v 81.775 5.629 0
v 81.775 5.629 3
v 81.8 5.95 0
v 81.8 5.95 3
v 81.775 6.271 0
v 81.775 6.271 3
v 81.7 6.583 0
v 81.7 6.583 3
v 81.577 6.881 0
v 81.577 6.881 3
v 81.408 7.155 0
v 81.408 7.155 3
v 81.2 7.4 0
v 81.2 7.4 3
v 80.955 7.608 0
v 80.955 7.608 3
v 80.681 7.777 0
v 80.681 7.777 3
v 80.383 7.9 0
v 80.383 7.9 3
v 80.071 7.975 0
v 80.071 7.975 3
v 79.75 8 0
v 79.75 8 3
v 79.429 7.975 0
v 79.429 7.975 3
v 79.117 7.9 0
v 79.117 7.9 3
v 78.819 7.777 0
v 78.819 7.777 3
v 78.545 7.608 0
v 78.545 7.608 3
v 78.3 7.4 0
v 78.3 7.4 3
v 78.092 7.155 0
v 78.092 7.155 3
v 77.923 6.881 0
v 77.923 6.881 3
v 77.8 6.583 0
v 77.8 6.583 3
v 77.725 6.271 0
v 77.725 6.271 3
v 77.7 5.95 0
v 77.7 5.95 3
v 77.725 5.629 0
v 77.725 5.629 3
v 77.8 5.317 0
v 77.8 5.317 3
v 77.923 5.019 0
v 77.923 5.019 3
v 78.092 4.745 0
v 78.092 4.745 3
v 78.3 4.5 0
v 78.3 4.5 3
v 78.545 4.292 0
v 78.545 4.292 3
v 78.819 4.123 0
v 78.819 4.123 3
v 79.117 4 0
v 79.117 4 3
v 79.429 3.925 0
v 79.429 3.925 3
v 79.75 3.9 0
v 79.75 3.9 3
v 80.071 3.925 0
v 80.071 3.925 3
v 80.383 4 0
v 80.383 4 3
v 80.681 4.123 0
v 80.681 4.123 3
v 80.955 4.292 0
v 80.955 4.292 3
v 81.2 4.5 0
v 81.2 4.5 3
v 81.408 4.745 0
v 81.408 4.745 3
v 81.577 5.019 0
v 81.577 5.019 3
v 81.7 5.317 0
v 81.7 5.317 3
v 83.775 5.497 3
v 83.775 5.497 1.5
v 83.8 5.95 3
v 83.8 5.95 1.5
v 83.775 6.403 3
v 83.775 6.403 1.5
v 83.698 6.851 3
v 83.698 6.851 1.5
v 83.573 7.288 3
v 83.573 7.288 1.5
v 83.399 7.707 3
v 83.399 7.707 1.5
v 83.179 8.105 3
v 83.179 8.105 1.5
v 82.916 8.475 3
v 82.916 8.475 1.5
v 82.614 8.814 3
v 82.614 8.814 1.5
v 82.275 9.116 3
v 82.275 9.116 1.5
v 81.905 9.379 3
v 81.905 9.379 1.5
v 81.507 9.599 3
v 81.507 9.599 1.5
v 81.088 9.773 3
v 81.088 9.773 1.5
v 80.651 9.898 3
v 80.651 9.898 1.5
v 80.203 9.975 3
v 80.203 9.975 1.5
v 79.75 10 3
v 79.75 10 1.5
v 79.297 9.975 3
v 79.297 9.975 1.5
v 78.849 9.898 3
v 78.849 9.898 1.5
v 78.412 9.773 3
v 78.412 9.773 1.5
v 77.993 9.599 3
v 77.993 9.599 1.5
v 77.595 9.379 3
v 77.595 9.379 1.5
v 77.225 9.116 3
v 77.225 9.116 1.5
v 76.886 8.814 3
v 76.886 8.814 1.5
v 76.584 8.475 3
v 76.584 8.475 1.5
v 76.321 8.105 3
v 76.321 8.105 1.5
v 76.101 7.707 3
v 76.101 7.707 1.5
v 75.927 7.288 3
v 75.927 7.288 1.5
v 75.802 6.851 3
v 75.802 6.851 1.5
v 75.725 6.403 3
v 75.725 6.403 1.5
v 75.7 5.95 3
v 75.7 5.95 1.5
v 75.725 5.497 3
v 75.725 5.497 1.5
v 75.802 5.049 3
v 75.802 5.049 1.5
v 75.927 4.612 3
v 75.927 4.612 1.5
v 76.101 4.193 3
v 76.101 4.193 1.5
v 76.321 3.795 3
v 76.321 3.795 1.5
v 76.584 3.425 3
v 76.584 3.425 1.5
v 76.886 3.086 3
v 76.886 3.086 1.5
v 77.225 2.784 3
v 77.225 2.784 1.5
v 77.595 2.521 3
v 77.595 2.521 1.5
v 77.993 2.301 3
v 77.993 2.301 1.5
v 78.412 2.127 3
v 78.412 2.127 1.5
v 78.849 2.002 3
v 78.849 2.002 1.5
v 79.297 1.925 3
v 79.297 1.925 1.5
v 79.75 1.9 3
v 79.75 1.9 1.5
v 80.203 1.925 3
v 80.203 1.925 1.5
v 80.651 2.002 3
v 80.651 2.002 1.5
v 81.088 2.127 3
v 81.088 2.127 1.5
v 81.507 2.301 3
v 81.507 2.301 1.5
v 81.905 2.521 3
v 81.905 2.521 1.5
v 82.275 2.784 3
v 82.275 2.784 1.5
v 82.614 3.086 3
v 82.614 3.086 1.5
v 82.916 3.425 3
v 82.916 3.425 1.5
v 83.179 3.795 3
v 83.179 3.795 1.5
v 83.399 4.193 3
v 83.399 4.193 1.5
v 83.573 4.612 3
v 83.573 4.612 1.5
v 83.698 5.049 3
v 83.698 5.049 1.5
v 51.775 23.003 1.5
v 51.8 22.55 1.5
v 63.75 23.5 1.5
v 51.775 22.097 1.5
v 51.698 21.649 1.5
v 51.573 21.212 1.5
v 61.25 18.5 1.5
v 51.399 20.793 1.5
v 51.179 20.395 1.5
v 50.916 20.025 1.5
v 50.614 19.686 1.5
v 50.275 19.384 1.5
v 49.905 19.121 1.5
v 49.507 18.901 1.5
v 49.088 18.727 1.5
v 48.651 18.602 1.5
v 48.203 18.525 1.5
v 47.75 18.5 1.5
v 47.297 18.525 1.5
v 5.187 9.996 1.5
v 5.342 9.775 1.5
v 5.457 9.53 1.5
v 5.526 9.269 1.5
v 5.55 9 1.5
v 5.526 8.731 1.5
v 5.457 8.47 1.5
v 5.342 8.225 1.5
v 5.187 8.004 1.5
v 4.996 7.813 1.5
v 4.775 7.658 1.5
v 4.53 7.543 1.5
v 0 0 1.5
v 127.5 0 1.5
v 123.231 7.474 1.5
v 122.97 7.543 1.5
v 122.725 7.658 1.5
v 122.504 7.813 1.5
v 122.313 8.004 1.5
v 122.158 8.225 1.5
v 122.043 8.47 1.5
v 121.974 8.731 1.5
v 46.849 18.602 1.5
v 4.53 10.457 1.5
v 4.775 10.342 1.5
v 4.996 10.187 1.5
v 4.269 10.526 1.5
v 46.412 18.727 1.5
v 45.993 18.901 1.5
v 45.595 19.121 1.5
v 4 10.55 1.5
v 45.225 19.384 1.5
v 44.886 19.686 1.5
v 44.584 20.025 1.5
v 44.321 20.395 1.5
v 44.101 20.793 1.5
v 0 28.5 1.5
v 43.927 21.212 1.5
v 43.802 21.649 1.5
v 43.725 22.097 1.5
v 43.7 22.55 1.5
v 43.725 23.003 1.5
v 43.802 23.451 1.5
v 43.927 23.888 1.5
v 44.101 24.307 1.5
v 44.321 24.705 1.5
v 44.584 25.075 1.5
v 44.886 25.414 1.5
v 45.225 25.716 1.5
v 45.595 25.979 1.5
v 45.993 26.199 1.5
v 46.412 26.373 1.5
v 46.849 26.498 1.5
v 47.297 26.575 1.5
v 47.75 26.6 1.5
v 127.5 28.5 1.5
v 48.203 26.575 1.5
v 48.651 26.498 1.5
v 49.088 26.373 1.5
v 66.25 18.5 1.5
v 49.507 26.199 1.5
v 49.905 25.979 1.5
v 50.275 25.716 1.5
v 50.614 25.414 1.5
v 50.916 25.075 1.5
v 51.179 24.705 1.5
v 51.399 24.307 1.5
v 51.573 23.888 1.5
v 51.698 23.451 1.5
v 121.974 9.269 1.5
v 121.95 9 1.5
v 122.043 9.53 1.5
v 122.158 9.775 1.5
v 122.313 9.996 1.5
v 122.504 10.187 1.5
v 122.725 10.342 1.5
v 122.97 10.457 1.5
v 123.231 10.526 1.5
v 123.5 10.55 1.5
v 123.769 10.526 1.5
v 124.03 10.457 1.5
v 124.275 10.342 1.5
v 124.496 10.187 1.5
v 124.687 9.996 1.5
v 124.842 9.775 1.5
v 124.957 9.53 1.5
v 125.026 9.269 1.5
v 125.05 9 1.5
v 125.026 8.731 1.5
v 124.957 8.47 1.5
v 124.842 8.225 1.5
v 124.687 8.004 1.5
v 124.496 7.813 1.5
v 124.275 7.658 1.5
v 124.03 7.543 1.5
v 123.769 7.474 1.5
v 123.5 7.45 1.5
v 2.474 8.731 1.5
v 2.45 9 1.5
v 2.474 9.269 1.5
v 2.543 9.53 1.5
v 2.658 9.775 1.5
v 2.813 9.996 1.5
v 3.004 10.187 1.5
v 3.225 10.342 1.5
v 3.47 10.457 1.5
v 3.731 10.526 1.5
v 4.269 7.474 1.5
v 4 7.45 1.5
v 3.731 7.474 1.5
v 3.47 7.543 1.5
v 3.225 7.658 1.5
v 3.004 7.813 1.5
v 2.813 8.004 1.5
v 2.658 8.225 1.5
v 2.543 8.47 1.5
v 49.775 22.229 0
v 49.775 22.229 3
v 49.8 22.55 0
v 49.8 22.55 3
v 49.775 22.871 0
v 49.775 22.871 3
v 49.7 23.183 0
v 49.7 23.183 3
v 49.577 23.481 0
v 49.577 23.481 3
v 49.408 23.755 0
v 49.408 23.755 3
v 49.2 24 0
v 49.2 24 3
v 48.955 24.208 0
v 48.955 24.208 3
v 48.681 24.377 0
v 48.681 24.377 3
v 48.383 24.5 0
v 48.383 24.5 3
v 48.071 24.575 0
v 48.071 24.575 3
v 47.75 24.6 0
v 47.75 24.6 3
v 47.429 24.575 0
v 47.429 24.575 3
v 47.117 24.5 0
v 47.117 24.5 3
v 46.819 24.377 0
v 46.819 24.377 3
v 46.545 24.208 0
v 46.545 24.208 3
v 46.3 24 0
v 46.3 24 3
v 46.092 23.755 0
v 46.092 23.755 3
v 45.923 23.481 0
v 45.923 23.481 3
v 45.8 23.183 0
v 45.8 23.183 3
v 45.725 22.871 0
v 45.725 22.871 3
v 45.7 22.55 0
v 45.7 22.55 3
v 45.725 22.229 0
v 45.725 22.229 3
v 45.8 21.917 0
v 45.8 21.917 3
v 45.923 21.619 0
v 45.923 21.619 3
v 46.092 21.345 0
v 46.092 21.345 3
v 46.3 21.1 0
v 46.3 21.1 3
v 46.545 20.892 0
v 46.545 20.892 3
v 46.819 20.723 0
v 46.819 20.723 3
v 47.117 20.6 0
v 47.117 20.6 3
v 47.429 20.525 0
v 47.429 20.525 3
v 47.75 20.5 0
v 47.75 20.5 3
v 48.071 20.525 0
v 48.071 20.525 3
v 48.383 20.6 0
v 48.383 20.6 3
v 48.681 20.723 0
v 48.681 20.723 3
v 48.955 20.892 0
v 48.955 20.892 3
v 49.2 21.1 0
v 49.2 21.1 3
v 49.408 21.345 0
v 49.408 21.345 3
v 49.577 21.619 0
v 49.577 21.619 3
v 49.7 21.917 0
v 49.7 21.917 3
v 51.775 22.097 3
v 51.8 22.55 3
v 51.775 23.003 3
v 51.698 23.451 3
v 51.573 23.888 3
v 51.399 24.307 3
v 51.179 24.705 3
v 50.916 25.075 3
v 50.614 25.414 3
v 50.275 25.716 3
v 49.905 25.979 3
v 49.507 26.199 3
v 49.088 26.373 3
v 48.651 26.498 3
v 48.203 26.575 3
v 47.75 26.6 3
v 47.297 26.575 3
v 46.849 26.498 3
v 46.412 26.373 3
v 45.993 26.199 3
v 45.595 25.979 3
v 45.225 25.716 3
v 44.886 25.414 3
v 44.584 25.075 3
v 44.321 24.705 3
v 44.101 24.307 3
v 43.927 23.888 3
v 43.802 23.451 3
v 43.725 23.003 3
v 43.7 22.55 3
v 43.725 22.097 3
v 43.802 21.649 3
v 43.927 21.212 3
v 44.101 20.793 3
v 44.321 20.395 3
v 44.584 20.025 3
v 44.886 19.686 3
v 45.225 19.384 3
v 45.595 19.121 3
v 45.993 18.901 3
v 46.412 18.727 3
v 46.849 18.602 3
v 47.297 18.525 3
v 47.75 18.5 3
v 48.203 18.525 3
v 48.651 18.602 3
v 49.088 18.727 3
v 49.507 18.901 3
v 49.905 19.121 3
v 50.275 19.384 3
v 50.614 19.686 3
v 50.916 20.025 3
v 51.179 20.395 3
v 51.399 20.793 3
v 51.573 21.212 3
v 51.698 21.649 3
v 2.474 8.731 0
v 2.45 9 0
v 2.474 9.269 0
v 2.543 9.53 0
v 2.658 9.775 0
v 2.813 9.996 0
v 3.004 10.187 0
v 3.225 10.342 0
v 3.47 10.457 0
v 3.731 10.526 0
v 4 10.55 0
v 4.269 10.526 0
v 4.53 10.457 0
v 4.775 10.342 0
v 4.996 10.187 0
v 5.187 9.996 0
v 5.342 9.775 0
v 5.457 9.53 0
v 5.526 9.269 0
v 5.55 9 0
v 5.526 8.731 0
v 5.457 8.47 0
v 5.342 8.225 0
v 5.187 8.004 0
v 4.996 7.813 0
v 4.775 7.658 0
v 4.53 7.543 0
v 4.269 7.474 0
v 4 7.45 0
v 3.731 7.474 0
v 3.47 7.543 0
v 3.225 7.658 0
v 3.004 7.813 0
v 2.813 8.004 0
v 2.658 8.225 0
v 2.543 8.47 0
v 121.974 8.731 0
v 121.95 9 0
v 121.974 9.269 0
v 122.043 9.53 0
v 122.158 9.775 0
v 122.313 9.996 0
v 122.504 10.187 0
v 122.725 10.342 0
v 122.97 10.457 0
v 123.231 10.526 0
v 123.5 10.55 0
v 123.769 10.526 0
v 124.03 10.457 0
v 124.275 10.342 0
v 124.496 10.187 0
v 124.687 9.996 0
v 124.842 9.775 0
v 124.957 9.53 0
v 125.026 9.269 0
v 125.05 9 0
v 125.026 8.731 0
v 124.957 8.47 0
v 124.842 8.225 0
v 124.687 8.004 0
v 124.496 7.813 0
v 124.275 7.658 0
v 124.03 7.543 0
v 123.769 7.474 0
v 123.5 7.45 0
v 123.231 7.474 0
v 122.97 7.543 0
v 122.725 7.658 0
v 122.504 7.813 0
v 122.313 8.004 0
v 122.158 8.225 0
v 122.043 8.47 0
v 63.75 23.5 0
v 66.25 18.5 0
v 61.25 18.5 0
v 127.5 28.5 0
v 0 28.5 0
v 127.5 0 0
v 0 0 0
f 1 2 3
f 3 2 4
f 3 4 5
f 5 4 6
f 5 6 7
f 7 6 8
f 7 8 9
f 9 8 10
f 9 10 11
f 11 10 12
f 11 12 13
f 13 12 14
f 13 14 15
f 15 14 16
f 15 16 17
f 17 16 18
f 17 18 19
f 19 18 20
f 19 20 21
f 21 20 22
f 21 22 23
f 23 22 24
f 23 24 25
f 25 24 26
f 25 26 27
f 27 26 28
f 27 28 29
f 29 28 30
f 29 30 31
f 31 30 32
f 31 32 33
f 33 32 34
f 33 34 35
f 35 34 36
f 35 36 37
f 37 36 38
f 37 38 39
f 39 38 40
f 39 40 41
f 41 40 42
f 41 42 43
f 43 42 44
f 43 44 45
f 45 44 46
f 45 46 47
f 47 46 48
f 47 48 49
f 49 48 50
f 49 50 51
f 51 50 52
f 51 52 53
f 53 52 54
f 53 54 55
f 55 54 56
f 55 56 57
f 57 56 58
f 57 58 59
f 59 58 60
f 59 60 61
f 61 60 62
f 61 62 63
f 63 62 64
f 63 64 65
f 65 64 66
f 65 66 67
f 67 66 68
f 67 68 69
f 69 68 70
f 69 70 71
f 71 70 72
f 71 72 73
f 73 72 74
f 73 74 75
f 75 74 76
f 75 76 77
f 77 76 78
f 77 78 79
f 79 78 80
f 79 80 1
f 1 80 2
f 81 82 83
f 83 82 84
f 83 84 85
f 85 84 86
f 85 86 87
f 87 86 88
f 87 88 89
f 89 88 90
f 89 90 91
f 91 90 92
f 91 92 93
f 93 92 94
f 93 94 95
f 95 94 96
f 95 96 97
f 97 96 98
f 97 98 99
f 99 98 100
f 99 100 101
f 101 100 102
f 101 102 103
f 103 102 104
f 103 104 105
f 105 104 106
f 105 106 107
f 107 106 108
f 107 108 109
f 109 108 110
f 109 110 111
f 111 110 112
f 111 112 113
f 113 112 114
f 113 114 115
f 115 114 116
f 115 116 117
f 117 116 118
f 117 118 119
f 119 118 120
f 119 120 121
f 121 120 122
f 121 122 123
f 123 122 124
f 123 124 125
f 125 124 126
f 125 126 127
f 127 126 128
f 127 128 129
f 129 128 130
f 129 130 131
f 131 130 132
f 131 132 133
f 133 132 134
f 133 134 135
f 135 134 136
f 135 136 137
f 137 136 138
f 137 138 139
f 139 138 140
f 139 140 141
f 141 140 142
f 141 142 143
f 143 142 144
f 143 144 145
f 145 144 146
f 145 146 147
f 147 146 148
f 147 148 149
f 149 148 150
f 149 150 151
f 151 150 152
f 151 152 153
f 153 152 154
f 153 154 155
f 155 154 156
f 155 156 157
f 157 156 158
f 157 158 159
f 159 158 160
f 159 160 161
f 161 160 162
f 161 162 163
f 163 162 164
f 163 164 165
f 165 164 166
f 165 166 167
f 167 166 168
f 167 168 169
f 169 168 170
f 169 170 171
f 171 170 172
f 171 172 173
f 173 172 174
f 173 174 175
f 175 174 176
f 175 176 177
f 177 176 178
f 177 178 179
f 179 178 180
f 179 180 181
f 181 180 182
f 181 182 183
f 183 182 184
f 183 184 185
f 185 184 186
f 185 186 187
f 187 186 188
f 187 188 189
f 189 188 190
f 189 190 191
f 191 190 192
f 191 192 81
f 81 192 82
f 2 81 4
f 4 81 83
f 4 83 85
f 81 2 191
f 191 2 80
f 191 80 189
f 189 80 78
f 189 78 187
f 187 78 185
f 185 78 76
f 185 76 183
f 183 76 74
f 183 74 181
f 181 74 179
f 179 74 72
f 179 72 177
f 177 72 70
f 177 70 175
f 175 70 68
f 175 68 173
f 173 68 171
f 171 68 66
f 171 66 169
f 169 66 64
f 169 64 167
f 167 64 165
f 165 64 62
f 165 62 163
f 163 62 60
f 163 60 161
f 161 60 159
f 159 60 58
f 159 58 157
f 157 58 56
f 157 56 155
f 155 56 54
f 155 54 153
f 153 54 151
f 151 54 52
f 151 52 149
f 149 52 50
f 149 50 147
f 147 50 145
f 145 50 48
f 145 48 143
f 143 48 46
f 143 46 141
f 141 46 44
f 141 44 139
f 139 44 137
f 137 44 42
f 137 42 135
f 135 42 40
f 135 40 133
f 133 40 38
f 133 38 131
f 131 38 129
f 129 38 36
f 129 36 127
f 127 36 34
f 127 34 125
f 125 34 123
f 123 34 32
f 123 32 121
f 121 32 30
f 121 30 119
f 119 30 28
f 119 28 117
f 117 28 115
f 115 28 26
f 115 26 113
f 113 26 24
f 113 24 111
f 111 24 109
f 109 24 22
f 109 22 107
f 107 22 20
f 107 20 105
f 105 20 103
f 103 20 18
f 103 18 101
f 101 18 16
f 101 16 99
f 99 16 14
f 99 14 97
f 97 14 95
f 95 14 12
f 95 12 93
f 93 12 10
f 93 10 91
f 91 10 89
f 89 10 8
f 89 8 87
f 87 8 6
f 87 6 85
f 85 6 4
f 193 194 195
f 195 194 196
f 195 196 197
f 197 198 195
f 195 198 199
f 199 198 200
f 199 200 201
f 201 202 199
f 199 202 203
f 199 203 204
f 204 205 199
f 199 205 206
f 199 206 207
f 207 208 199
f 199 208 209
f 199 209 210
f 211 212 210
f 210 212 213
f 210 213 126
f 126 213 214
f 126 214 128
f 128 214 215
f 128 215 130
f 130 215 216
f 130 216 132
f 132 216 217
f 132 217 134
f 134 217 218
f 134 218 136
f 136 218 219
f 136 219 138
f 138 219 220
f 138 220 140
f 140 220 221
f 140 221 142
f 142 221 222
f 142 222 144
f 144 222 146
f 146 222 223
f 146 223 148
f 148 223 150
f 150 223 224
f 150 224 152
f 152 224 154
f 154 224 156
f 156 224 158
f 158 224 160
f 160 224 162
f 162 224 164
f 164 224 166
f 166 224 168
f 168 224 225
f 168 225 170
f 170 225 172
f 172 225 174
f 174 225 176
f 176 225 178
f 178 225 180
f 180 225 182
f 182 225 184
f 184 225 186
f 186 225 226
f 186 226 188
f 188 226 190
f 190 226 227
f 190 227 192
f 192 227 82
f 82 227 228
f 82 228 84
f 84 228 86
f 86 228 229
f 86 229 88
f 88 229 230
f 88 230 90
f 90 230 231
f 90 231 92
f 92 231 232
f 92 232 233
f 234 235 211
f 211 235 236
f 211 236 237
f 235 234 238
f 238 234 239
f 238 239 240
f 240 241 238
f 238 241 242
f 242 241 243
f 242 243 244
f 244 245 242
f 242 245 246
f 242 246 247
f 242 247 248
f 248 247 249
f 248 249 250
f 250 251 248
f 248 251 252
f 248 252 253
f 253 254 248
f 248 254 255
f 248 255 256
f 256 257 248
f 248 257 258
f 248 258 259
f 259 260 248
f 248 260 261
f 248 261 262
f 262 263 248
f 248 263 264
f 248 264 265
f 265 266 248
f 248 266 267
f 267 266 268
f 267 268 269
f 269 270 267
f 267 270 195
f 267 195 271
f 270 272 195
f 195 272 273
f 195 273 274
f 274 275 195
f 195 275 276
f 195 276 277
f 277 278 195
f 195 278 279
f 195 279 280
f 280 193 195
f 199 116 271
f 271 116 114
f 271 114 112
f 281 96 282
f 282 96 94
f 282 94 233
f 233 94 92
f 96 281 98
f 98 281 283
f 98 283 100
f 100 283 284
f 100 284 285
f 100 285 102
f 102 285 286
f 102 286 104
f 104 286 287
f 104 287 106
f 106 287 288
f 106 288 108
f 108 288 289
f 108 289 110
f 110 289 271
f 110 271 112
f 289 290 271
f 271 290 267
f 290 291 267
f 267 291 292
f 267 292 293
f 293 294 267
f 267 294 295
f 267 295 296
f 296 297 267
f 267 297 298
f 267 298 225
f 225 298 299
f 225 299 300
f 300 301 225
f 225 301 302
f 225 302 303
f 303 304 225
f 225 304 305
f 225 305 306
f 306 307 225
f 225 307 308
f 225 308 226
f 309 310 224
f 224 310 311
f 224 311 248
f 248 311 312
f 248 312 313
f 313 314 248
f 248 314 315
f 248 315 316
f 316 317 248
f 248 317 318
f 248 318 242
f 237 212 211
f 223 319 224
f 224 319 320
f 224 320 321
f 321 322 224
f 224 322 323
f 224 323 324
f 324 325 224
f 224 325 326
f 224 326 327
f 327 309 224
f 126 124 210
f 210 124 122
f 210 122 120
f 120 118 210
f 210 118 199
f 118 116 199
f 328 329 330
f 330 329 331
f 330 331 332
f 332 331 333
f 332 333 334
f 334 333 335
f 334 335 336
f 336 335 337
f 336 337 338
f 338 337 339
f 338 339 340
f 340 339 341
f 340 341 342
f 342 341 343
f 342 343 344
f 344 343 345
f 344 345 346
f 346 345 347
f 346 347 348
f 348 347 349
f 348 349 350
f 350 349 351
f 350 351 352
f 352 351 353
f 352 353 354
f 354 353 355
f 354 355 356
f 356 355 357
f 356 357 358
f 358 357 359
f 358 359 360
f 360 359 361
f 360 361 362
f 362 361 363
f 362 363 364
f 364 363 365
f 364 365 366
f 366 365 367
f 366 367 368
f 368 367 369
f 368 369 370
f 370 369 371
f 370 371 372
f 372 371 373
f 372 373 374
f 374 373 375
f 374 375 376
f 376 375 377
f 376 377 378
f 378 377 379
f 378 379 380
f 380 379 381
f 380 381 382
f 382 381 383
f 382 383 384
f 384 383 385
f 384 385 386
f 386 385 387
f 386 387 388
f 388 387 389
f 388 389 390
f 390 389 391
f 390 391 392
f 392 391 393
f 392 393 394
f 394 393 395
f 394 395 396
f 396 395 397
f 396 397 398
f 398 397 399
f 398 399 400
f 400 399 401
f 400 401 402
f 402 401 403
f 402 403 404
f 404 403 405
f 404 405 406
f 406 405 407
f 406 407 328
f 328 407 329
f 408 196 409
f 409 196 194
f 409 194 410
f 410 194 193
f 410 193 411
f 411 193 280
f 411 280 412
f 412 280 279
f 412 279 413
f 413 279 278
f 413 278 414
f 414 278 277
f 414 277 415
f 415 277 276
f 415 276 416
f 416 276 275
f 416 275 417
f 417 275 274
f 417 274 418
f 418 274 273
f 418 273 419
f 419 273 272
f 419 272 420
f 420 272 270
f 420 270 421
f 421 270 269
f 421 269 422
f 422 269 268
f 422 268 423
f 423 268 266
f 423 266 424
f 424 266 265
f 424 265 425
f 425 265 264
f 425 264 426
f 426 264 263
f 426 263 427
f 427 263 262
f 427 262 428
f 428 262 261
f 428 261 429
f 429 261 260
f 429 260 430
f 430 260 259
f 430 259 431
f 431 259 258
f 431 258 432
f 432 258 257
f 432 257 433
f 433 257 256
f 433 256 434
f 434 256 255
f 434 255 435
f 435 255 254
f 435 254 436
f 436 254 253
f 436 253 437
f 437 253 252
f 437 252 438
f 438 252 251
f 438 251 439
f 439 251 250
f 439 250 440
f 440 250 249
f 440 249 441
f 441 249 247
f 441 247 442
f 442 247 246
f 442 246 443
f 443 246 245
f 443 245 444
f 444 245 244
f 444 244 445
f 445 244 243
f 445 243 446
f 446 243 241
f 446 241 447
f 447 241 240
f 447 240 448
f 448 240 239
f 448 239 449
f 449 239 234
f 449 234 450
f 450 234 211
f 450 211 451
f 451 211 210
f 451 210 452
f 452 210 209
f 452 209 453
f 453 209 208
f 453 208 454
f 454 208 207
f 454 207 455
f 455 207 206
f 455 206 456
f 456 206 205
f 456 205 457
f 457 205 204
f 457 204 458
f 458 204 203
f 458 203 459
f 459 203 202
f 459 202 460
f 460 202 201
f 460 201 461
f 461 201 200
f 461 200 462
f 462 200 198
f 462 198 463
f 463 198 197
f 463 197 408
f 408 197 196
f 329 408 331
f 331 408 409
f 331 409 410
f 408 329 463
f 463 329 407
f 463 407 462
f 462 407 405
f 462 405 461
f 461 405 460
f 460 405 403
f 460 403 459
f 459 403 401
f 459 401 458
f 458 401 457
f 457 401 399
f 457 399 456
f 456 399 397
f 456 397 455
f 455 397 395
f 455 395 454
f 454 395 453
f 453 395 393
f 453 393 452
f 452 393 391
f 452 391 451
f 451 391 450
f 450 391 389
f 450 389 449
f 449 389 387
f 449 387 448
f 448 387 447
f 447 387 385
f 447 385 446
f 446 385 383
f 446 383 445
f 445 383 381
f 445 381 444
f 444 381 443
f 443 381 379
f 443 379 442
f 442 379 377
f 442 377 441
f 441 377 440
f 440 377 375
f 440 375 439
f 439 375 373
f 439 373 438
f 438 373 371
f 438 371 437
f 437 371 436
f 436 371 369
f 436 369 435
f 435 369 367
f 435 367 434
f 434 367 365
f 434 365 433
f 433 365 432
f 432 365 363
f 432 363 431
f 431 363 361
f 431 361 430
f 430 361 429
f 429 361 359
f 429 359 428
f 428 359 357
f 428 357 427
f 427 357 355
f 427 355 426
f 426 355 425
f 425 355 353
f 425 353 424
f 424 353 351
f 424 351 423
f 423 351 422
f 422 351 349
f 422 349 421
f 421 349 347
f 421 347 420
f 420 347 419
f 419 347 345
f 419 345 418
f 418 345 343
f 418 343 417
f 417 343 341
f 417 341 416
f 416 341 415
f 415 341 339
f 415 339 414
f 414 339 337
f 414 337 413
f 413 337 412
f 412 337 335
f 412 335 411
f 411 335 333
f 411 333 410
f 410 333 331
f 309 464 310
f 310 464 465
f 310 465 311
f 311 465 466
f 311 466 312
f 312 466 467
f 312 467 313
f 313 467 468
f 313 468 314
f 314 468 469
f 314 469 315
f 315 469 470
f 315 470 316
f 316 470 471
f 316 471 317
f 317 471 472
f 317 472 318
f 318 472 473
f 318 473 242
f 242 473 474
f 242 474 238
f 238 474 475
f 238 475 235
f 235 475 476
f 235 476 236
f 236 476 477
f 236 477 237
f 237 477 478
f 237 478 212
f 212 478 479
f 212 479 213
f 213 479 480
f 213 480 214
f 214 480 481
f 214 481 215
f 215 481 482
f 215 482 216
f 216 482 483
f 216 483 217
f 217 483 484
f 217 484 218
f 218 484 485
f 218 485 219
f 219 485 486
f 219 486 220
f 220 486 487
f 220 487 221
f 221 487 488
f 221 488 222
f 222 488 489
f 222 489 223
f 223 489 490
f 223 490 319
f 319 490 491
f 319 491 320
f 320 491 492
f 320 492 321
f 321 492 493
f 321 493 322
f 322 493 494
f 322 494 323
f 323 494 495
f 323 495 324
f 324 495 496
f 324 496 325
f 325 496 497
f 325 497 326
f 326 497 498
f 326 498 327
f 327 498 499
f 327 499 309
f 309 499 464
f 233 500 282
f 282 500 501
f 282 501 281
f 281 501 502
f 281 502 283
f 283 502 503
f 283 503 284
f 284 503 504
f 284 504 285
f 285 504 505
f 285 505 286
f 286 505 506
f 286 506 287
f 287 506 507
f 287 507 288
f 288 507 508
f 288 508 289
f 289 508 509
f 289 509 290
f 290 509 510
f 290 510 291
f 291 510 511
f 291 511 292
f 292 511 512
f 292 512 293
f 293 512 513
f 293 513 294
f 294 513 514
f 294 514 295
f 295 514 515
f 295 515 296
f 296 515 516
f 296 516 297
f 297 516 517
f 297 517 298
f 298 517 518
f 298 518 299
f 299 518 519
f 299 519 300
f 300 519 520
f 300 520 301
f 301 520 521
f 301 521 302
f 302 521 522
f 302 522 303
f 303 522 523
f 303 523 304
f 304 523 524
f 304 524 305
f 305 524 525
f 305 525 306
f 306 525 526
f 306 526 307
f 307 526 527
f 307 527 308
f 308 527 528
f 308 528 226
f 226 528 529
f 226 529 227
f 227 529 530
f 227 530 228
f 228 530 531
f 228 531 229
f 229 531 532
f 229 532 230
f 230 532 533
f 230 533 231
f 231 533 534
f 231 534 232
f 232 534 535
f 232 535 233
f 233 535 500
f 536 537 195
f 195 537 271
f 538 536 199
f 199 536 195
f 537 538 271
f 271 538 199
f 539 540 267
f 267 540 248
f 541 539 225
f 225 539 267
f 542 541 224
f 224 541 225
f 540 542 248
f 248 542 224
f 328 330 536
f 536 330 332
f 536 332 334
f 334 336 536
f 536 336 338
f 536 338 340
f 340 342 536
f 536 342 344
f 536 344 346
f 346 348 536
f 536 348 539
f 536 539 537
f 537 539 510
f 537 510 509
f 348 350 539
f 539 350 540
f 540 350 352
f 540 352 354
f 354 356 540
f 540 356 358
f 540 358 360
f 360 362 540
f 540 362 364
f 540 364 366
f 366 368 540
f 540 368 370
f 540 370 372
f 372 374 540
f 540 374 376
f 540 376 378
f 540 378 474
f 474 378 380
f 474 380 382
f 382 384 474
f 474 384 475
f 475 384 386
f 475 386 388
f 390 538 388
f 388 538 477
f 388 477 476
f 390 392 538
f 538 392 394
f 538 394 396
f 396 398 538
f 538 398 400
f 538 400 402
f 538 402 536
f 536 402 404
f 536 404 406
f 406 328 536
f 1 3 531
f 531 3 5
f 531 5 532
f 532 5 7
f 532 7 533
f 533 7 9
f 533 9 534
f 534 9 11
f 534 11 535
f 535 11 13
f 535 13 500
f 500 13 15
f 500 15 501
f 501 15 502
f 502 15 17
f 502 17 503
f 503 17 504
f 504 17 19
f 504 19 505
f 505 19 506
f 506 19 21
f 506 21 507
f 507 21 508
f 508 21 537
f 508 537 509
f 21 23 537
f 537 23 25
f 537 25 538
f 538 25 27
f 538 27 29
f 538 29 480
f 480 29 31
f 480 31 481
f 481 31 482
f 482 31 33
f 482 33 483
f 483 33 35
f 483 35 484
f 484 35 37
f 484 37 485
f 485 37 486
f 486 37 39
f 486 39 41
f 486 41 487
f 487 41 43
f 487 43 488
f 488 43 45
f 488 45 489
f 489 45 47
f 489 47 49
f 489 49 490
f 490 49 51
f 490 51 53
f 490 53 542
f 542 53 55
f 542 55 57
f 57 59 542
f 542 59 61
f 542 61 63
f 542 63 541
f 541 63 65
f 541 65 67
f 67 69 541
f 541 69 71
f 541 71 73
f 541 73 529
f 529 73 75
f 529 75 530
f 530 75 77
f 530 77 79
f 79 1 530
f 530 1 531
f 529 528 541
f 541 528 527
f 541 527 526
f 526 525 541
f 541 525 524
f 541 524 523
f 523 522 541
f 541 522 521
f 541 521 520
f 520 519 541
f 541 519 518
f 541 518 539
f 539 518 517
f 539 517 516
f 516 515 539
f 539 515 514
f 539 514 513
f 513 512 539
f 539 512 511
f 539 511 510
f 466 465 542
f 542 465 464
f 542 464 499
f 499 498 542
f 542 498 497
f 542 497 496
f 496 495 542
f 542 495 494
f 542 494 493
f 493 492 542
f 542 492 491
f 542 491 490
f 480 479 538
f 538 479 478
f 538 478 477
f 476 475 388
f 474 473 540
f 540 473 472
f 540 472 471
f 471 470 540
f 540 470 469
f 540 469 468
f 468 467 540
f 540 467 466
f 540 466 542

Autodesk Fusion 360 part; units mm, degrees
sketch "Sketch1" plane through (0, 0, 0) normal (0, 0, 1) x (1, 0, 0)
  line L0 (0, 0) -> (127.5, 0)
  line L1 (127.5, 0) -> (127.5, 28.5)
  line L2 (127.5, 28.5) -> (0, 28.5)
  line L3 (0, 28.5) -> (0, 0)
  circle A0 centre (4, 9) radius 1.55
  line L4 (63.75, 0) -> (63.75, 28.5) construction
  circle A1 centre (123.5, 9) radius 1.55
  line L5 (66.25, 18.5) -> (61.25, 18.5)
  line L6 (61.25, 18.5) -> (61.25, 23.5)
  line L7 (61.25, 23.5) -> (66.25, 23.5)
  line L8 (66.25, 23.5) -> (66.25, 18.5)
  line L9 (66.25, 18.5) -> (61.25, 23.5) construction
  line L10 (61.25, 18.5) -> (66.25, 23.5) construction
  line L11 (61.25, 18.5) -> (63.75, 23.5)
  line L12 (66.25, 18.5) -> (63.75, 23.5)
  point P0 (63.75, 21)
  dimension "d1" = 127.5
  dimension "d2" = 28.5
  dimension "d3" = 3.1
  dimension "d4" = 9
  dimension "d5" = 4
  dimension "d11" = 5
  dimension "d12" = 5
  dimension "d13" = 5
extrude "Extrude1" add sketch "Sketch1" along normal blind 1.5 contours L0 L1 L2 L3 | L7 L8 L12 | L6 L7 L11
sketch "Sketch2" plane through (0, 0, 1.5) normal (0, 0, 1) x (-1, 0, 0)
  circle A0 centre (-123.5, -9) radius 1.55
  circle A1 centre (-4, -9) radius 1.55
  line L0 (-66.25, -18.5) -> (-61.25, -18.5)
  line L1 (-61.25, -18.5) -> (-63.75, -23.5)
  line L2 (-63.75, -23.5) -> (-66.25, -18.5)
  line L3 (0, -28.5) -> (0, 0)
  line L4 (0, 0) -> (-127.5, 0)
  line L5 (-127.5, 0) -> (-127.5, -28.5)
  line L6 (-127.5, -28.5) -> (0, -28.5)
  line L7 (-63.75, -28.5) -> (-63.75, 0) construction
  line L8 (-87.75, -2.75) -> (-39.75, -2.75)
  line L9 (-39.75, -2.75) -> (-39.75, -25.75)
  line L10 (-39.75, -25.75) -> (-87.75, -25.75)
  line L11 (-87.75, -25.75) -> (-87.75, -2.75)
  line L12 (-87.75, -2.75) -> (-39.75, -25.75) construction
  line L13 (-39.75, -2.75) -> (-87.75, -25.75) construction
  circle A2 centre (-47.75, -22.55) radius 2.05
  circle A3 centre (-47.75, -22.55) radius 4.05
  circle A4 centre (-79.75, -5.95) radius 2.05
  circle A5 centre (-79.75, -5.95) radius 4.05
  point P0 (-63.75, -14.25)
  dimension "d14" = 48
  dimension "d15" = 23
  dimension "d18" = 8
  dimension "d19" = 3.2
  dimension "d20" = 4.1
  dimension "d21" = 8.1
  dimension "d22" = 4.1
  dimension "d23" = 8.1
  dimension "d24" = 8
  dimension "d25" = 3.2
extrude "Extrude2" add sketch "Sketch2" along normal blind 1.5 contours L8 A5 | L8 A5 | L10 A3 | L10 A3
extrude "Extrude3" cut sketch "Sketch2" against normal blind 1.5 contours A2 | A4
equation "d1 = 134 mm - 6 mm - 0.5 mm"
equation "d4 = 10.5 mm - 1.5 mm"
equation "d5 = 7 mm - 3 mm"
equation "d21 = d20 + 4 mm"
equation "d22 = d20"
equation "d23 = d21"
